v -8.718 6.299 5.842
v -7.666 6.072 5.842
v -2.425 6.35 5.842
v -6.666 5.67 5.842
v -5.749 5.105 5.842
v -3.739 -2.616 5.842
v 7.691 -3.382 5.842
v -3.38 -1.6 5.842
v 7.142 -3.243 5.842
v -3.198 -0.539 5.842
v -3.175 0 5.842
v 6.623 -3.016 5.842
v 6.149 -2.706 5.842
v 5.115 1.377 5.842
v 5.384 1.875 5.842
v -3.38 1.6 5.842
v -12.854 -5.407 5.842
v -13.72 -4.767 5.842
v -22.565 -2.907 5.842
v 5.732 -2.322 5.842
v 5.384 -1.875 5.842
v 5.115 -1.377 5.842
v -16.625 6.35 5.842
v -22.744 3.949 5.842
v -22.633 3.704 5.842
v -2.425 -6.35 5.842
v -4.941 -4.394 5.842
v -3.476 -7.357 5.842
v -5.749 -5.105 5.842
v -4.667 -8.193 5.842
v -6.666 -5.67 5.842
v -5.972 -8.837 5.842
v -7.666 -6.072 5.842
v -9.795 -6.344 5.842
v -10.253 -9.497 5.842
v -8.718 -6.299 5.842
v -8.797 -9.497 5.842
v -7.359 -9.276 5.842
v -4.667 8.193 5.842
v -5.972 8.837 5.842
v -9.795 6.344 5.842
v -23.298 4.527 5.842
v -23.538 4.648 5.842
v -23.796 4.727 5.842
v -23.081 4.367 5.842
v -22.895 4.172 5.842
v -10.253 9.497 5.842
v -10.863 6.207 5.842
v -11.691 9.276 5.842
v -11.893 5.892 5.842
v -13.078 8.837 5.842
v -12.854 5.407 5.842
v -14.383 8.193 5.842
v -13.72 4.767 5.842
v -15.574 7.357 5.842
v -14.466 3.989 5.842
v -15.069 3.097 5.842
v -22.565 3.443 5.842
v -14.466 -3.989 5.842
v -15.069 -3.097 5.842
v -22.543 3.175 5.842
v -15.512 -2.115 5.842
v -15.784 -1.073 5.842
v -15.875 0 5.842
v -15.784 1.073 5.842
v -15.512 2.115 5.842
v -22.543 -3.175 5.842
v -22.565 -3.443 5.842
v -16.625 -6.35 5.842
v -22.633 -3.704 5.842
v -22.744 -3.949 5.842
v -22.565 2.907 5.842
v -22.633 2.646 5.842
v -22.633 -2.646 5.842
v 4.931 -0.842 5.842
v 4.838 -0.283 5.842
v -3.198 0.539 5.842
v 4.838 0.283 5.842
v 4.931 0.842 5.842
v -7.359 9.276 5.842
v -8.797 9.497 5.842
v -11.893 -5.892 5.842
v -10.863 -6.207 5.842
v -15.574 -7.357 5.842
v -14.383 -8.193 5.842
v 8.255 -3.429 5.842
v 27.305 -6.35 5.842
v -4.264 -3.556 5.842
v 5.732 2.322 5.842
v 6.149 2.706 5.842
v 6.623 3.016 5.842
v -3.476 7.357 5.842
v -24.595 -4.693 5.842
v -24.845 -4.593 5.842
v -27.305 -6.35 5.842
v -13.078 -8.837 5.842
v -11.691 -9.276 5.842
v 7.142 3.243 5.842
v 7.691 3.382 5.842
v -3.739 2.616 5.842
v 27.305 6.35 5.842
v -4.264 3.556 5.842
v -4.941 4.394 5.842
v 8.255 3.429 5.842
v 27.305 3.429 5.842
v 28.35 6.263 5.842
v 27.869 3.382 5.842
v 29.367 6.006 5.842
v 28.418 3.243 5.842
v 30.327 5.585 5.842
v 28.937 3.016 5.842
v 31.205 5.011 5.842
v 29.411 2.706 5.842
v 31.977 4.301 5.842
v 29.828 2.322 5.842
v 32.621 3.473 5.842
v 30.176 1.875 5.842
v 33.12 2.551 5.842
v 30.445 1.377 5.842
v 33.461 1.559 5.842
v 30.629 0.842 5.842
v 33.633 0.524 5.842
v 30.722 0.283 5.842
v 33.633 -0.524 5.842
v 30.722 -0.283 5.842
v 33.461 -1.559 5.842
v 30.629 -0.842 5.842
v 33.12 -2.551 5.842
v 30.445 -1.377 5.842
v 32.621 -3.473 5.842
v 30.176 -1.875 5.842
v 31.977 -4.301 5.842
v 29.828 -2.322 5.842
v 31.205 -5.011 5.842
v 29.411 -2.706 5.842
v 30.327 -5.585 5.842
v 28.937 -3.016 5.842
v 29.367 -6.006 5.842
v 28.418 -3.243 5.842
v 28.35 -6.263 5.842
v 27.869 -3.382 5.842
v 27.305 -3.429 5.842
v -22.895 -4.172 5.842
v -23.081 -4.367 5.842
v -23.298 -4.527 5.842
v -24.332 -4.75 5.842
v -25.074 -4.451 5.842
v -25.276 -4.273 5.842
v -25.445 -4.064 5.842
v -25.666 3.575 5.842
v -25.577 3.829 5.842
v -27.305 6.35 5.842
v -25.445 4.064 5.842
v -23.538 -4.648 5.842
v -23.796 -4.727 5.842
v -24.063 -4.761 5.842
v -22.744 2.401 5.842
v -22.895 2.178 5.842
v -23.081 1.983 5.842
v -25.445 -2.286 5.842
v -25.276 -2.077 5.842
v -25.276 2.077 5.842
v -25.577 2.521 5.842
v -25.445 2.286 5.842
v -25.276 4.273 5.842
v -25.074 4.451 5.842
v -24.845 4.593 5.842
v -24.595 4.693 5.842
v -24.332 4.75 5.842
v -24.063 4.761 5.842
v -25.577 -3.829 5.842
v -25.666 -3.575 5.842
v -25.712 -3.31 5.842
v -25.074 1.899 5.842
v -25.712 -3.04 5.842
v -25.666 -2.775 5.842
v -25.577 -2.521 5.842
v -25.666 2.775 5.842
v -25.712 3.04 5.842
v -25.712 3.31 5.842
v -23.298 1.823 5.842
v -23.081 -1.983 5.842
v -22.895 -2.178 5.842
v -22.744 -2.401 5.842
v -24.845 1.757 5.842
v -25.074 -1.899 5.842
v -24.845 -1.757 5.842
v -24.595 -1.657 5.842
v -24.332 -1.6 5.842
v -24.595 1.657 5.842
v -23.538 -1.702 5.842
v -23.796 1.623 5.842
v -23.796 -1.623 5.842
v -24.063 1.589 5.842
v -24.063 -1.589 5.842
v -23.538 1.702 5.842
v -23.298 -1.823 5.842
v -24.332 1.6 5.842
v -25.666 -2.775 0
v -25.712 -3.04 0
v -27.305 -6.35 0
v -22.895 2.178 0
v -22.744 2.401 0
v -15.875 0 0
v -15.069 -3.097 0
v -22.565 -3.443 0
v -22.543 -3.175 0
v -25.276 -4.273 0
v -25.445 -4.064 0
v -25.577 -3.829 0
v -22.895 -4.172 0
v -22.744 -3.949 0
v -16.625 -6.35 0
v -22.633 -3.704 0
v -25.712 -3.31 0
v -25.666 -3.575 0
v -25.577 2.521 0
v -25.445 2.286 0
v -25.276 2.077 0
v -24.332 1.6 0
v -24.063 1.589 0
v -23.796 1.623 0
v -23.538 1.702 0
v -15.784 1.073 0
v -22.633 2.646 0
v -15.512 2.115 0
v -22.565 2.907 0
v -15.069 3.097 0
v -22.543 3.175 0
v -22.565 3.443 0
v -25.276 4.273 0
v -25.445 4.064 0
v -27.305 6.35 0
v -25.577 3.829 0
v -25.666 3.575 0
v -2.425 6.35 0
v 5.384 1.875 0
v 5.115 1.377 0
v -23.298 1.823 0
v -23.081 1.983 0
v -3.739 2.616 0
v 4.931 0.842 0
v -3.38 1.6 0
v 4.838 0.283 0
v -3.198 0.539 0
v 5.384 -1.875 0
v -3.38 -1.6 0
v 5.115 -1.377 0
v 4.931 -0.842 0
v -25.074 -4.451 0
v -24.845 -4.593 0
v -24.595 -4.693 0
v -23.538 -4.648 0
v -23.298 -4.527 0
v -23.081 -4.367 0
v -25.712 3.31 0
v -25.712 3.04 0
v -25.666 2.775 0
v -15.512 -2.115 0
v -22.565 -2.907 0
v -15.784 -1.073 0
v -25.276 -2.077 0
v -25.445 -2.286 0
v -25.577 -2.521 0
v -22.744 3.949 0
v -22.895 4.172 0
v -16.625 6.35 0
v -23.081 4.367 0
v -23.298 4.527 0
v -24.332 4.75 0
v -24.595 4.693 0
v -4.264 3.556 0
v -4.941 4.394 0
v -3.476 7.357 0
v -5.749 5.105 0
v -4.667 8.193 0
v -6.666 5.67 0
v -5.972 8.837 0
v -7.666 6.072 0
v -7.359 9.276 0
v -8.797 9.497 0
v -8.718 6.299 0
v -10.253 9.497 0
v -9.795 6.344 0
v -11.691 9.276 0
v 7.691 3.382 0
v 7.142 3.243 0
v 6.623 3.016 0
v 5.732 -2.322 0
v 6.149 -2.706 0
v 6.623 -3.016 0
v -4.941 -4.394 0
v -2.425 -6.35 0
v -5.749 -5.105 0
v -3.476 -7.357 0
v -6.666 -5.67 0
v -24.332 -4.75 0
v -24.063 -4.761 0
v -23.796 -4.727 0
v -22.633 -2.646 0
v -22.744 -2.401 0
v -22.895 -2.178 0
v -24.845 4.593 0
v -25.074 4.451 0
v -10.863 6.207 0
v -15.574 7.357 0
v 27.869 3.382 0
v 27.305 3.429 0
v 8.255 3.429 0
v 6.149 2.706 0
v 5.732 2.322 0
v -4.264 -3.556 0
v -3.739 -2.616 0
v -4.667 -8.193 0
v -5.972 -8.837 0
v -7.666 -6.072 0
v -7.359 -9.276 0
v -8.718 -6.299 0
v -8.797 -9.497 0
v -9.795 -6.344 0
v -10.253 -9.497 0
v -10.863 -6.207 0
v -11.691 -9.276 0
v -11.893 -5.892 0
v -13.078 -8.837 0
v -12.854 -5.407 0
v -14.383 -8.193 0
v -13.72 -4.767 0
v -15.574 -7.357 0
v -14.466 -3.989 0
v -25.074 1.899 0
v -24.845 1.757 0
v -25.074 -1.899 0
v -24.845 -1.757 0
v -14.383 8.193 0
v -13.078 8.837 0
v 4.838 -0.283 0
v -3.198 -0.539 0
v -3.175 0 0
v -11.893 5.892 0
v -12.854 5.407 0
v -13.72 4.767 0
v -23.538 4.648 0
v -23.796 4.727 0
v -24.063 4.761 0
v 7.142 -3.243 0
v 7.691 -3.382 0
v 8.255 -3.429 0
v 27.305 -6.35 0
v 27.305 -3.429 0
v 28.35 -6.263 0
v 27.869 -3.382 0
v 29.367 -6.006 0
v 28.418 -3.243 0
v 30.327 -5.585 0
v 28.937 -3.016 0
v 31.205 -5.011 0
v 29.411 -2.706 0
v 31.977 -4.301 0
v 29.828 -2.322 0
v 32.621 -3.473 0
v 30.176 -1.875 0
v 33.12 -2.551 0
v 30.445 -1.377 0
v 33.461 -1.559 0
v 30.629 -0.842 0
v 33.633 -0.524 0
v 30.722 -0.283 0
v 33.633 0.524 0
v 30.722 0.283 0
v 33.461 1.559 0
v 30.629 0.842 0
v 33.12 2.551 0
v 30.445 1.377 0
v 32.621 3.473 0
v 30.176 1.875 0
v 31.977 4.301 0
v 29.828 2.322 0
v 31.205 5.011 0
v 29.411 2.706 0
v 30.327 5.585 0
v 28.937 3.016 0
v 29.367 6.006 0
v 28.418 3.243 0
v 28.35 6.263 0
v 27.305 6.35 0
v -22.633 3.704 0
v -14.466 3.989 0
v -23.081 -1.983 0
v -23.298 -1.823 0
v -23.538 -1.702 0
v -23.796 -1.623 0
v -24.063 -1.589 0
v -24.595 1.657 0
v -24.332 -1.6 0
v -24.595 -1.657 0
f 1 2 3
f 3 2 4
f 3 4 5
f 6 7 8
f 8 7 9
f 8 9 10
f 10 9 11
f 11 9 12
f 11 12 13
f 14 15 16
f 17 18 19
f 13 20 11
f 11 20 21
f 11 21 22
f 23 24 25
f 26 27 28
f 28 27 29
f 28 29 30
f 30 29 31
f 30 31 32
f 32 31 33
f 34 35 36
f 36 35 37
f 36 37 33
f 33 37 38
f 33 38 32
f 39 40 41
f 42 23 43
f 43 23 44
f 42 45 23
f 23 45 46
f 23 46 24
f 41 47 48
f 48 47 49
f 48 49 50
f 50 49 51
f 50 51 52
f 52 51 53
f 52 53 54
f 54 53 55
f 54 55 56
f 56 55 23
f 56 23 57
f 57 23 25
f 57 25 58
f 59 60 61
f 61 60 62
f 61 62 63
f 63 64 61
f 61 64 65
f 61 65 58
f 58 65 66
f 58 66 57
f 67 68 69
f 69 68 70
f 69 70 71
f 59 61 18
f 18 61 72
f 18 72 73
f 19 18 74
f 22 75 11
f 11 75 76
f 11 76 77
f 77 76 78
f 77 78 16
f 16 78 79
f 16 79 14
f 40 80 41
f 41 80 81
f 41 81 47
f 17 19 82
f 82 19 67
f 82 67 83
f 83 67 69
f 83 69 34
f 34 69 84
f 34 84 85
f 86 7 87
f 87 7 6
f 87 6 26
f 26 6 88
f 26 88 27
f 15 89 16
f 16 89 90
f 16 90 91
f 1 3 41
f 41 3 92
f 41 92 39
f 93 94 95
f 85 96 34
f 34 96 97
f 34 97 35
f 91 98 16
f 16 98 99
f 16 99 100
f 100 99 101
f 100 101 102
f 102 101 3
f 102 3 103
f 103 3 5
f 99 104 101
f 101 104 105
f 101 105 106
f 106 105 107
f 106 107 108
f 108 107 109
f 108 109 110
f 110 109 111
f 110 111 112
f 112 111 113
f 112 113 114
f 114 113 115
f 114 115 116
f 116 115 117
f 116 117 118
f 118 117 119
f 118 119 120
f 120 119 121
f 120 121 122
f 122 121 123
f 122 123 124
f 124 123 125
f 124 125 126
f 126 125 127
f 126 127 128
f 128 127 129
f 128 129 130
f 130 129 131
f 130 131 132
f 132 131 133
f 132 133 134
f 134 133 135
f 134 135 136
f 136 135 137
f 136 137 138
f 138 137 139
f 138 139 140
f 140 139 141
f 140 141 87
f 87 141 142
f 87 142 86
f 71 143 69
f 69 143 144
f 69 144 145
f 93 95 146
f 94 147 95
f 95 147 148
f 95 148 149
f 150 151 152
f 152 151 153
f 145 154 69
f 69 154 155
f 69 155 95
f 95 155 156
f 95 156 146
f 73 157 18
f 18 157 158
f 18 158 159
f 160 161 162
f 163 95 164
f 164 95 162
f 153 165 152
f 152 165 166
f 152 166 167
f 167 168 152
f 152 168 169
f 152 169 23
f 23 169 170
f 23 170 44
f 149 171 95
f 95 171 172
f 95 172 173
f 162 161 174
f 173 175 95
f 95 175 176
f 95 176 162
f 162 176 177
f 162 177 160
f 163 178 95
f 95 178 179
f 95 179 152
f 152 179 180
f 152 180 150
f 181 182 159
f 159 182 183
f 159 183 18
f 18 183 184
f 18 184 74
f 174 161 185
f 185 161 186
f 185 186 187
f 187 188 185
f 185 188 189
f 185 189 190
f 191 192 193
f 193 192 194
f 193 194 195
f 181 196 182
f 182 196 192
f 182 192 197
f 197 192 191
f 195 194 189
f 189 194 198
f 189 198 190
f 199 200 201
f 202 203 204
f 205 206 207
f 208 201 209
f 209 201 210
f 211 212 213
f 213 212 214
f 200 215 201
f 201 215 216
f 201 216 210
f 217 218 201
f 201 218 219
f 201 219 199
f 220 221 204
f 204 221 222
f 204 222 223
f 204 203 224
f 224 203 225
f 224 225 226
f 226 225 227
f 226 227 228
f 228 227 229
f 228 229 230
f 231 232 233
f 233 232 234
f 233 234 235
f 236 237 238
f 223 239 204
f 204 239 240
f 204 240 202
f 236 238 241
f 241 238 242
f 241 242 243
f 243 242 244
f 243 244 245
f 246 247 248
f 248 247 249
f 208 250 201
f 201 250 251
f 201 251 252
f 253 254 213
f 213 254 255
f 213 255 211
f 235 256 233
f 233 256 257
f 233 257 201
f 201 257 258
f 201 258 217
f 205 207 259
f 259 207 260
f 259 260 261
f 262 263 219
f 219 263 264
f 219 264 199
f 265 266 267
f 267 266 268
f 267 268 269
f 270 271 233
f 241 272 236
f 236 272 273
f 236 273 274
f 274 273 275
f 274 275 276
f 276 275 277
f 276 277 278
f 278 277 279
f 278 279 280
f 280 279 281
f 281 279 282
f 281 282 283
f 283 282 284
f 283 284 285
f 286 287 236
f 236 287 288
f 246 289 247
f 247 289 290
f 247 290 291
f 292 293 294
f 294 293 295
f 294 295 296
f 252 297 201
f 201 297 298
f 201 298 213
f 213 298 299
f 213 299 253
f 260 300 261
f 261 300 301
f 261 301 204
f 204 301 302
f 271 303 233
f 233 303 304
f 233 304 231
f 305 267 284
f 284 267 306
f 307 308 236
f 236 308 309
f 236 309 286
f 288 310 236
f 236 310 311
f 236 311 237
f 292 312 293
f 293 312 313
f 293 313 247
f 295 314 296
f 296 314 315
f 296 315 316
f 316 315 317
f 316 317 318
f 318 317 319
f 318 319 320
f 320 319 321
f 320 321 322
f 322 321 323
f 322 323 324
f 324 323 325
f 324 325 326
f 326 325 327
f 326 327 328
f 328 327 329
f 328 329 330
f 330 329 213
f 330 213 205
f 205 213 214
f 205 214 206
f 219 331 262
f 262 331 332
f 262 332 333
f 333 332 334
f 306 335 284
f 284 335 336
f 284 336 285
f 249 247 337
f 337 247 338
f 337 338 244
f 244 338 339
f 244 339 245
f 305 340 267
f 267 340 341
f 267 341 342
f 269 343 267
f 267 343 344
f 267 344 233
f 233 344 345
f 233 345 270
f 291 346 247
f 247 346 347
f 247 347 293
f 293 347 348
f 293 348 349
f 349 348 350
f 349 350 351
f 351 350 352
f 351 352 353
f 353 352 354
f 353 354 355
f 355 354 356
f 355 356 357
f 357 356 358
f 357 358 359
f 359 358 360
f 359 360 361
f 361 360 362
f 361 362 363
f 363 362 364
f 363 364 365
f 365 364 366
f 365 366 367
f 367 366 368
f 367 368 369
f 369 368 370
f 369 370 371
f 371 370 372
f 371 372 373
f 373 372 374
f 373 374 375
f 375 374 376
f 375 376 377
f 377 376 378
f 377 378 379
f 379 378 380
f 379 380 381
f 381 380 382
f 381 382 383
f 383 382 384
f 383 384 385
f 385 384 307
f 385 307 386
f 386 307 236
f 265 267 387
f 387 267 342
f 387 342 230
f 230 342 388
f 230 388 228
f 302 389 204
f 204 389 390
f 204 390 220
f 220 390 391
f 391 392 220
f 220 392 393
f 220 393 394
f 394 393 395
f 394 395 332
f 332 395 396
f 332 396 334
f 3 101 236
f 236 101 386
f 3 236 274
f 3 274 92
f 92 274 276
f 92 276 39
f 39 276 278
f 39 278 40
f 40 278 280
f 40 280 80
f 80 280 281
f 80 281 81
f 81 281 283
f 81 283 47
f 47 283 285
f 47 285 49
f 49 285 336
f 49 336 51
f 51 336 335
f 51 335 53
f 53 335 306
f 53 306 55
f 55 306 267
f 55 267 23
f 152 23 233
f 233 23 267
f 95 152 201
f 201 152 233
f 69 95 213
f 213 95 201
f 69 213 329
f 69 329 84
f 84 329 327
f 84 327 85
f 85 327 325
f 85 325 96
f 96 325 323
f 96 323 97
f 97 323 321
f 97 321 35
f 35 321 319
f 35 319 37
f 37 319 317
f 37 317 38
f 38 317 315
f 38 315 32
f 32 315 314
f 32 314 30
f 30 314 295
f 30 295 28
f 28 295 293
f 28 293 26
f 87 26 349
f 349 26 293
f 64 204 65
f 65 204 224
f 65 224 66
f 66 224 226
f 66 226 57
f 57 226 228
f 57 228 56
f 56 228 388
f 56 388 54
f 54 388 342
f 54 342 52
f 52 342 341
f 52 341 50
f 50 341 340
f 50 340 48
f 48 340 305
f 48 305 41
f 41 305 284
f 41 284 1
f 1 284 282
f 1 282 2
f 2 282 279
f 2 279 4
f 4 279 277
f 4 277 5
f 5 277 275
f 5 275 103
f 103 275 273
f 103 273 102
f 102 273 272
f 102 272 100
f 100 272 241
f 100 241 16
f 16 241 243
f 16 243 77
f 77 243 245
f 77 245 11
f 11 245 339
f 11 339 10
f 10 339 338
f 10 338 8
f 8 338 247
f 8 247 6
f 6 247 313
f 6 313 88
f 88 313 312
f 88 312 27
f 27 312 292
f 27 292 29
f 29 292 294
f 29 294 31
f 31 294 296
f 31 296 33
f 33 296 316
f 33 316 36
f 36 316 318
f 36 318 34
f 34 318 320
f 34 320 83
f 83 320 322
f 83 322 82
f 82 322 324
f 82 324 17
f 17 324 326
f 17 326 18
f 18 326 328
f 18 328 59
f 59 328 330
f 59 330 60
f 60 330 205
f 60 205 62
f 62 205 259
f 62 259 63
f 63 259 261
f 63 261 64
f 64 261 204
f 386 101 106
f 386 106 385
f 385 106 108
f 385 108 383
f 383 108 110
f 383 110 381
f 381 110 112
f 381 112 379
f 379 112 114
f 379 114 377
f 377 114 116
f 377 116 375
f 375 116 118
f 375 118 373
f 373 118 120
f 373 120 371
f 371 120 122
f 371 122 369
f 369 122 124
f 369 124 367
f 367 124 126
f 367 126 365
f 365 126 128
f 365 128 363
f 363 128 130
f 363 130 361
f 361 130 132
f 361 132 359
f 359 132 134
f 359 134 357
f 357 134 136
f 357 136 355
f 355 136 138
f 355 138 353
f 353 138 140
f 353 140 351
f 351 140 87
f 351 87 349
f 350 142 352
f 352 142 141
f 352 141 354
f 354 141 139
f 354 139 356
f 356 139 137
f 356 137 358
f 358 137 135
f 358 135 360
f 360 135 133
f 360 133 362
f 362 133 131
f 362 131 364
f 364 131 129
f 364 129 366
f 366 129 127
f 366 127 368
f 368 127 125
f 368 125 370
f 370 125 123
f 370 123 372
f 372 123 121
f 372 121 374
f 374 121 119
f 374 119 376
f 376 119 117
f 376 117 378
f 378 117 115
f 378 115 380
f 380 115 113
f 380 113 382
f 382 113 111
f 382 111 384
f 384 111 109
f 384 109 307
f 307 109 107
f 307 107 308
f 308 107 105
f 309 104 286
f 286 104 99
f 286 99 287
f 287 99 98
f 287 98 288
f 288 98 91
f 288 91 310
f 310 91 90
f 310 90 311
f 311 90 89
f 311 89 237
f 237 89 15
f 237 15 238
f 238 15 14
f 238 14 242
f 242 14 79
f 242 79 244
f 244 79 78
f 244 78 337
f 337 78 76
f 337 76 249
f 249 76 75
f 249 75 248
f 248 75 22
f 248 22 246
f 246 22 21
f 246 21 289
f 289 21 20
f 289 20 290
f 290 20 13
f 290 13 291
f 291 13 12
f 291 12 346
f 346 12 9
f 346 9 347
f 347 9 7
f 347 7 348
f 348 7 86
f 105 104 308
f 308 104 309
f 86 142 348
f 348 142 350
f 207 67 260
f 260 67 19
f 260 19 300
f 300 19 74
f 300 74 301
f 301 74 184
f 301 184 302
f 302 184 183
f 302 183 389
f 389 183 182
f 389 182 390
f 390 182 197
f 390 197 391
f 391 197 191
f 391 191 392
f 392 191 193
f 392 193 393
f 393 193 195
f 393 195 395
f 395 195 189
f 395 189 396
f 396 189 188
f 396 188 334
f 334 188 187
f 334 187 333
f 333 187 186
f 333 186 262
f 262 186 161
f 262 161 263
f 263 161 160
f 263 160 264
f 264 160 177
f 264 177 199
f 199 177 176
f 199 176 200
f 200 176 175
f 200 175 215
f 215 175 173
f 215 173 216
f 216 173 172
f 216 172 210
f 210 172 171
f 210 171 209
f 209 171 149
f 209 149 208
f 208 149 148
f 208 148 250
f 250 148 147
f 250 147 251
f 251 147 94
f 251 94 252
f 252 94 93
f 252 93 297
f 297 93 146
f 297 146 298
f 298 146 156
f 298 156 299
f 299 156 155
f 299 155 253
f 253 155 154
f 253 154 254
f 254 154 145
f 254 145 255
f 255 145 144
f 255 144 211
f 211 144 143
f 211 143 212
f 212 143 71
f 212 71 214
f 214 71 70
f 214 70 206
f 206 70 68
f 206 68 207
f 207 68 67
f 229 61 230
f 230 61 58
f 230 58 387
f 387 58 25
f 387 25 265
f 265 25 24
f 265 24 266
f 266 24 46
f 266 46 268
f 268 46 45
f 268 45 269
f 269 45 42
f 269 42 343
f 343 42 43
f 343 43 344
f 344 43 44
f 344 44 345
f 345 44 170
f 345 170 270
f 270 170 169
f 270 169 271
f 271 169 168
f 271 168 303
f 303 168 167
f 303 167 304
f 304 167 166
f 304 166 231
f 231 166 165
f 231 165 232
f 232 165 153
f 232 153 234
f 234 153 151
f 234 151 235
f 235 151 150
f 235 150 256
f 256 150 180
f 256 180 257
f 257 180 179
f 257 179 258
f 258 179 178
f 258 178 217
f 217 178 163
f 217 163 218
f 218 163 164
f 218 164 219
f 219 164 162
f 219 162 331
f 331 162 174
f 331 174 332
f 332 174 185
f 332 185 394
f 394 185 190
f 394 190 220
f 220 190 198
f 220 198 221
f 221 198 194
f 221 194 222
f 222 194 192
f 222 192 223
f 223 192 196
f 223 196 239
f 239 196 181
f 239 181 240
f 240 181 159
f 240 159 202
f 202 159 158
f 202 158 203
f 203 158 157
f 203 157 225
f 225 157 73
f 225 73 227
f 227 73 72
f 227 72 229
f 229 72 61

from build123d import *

# Parameters (mm, degrees)
SKETCH1_R           = 6.35
BOSS_EXTRUDE1_DEPTH = 6.35
SKETCH2_R           = 6.35
SKETCH2_R_2         = 3.175
BOSS_EXTRUDE2_DEPTH = 6.35
CUT_EXTRUDE1_REACH  = 37.549
CUT_EXTRUDE2_REACH  = 37.549
SKETCH5_R           = 1.5875
CUT_EXTRUDE3_DEPTH  = 36.548658906
MOVE_FACE1_BY       = 0.508
MOVE_FACE2_BY       = 0.254
MOVE_FACE2_2_BY     = 0.254
MOVE_FACE2_3_BY     = 0.254
MOVE_FACE2_4_BY     = 0.254


with BuildPart() as part:
    # Sketch1 → Boss-Extrude1 (new body)
    with BuildSketch(Plane.XY):
        with BuildLine():
            Line((-2.425484171, -6.35), (27.305, -6.35))
            Line((27.305, -6.35), (27.305, 6.35))
            Line((27.305, 6.35), (-2.425484171, 6.35))
            ThreePointArc((-2.425484171, 6.35), (-9.525, 9.525), (-16.624515829, 6.35))
            Line((-16.624515829, 6.35), (-27.305, 6.35))
            Line((-27.305, 6.35), (-27.305, -6.35))
            Line((-27.305, -6.35), (-16.624515829, -6.35))
            ThreePointArc((-16.624515829, -6.35), (-9.525, -9.525), (-2.425484171, -6.35))
        make_face()
        with Locations((-9.525, 0)):
            Circle(SKETCH1_R, mode=Mode.SUBTRACT)
    extrude(amount=BOSS_EXTRUDE1_DEPTH)

    # Sketch2 → Boss-Extrude2 (add)
    with BuildSketch(Plane.XY.offset(6.35)):
        with Locations((27.305, 0)):
            Circle(SKETCH2_R)
        with Locations((27.305, 0)):
            Circle(SKETCH2_R_2, mode=Mode.SUBTRACT)
    extrude(amount=-BOSS_EXTRUDE2_DEPTH)

    # Sketch3 → Cut-Extrude1 (cut, up to next)
    with BuildSketch(Plane.XY.offset(6.35), mode=Mode.PRIVATE) as cut_extrude1_sk1:
        with BuildLine():
            ThreePointArc((27.305, 3.175), (24.13, 0), (27.305, -3.175))
            Line((27.305, -3.175), (27.305, 3.175))
        make_face()
    cut_extrude1_tool1 = extrude(cut_extrude1_sk1.sketch, amount=-CUT_EXTRUDE1_REACH, mode=Mode.PRIVATE) & part.part
    add(cut_extrude1_tool1.solids().sort_by_distance((25.957488, 0, 6.35))[0], mode=Mode.SUBTRACT)

    # Sketch4 → Cut-Extrude2 (cut, up to next)
    with BuildSketch(Plane.XY.offset(6.35), mode=Mode.PRIVATE) as cut_extrude2_sk1:
        with BuildLine():
            Line((8.255, 3.175), (27.305, 3.175))
            ThreePointArc((27.305, 3.175), (30.48, 0), (27.305, -3.175))
            Line((27.305, -3.175), (8.255, -3.175))
            ThreePointArc((8.255, -3.175), (5.08, 0), (8.255, 3.175))
        make_face()
    cut_extrude2_tool1 = extrude(cut_extrude2_sk1.sketch, amount=-CUT_EXTRUDE2_REACH, mode=Mode.PRIVATE) & part.part
    add(cut_extrude2_tool1.solids().sort_by_distance((17.78, 0, 6.35))[0], mode=Mode.SUBTRACT)

    # Sketch5 → Cut-Extrude3 (cut, through all)
    with BuildSketch(Plane.XY.offset(6.35)):
        with Locations((-24.13, 3.175)):
            Circle(SKETCH5_R)
        with Locations((-24.13, -3.175)):
            Circle(SKETCH5_R)
    extrude(amount=-CUT_EXTRUDE3_DEPTH, mode=Mode.SUBTRACT)

    # Move Face1: a face moved inward by 0.508
    extrude(part.faces().sort_by_distance((0.343641582, 0, 6.35))[0], amount=MOVE_FACE1_BY, dir=(0, 0, -1), mode=Mode.SUBTRACT)

    # Move Face2: a curved face moved inward by 0.254
    add(Solid.thicken(part.faces().sort_by_distance((30.48, 0, 2.921))[0], -MOVE_FACE2_BY), mode=Mode.SUBTRACT)

    # Move Face2 2: a face moved inward by 0.254
    extrude(part.faces().sort_by_distance((17.78, 3.175, 2.921))[0], amount=MOVE_FACE2_2_BY, dir=(0, 1, 0), mode=Mode.SUBTRACT)

    # Move Face2 3: a curved face moved inward by 0.254
    add(Solid.thicken(part.faces().sort_by_distance((5.08, 0, 2.921))[0], -MOVE_FACE2_3_BY), mode=Mode.SUBTRACT)

    # Move Face2 4: a face moved inward by 0.254
    extrude(part.faces().sort_by_distance((17.78, -3.175, 2.921))[0], amount=MOVE_FACE2_4_BY, dir=(0, -1, 0), mode=Mode.SUBTRACT)


solid = part.part
